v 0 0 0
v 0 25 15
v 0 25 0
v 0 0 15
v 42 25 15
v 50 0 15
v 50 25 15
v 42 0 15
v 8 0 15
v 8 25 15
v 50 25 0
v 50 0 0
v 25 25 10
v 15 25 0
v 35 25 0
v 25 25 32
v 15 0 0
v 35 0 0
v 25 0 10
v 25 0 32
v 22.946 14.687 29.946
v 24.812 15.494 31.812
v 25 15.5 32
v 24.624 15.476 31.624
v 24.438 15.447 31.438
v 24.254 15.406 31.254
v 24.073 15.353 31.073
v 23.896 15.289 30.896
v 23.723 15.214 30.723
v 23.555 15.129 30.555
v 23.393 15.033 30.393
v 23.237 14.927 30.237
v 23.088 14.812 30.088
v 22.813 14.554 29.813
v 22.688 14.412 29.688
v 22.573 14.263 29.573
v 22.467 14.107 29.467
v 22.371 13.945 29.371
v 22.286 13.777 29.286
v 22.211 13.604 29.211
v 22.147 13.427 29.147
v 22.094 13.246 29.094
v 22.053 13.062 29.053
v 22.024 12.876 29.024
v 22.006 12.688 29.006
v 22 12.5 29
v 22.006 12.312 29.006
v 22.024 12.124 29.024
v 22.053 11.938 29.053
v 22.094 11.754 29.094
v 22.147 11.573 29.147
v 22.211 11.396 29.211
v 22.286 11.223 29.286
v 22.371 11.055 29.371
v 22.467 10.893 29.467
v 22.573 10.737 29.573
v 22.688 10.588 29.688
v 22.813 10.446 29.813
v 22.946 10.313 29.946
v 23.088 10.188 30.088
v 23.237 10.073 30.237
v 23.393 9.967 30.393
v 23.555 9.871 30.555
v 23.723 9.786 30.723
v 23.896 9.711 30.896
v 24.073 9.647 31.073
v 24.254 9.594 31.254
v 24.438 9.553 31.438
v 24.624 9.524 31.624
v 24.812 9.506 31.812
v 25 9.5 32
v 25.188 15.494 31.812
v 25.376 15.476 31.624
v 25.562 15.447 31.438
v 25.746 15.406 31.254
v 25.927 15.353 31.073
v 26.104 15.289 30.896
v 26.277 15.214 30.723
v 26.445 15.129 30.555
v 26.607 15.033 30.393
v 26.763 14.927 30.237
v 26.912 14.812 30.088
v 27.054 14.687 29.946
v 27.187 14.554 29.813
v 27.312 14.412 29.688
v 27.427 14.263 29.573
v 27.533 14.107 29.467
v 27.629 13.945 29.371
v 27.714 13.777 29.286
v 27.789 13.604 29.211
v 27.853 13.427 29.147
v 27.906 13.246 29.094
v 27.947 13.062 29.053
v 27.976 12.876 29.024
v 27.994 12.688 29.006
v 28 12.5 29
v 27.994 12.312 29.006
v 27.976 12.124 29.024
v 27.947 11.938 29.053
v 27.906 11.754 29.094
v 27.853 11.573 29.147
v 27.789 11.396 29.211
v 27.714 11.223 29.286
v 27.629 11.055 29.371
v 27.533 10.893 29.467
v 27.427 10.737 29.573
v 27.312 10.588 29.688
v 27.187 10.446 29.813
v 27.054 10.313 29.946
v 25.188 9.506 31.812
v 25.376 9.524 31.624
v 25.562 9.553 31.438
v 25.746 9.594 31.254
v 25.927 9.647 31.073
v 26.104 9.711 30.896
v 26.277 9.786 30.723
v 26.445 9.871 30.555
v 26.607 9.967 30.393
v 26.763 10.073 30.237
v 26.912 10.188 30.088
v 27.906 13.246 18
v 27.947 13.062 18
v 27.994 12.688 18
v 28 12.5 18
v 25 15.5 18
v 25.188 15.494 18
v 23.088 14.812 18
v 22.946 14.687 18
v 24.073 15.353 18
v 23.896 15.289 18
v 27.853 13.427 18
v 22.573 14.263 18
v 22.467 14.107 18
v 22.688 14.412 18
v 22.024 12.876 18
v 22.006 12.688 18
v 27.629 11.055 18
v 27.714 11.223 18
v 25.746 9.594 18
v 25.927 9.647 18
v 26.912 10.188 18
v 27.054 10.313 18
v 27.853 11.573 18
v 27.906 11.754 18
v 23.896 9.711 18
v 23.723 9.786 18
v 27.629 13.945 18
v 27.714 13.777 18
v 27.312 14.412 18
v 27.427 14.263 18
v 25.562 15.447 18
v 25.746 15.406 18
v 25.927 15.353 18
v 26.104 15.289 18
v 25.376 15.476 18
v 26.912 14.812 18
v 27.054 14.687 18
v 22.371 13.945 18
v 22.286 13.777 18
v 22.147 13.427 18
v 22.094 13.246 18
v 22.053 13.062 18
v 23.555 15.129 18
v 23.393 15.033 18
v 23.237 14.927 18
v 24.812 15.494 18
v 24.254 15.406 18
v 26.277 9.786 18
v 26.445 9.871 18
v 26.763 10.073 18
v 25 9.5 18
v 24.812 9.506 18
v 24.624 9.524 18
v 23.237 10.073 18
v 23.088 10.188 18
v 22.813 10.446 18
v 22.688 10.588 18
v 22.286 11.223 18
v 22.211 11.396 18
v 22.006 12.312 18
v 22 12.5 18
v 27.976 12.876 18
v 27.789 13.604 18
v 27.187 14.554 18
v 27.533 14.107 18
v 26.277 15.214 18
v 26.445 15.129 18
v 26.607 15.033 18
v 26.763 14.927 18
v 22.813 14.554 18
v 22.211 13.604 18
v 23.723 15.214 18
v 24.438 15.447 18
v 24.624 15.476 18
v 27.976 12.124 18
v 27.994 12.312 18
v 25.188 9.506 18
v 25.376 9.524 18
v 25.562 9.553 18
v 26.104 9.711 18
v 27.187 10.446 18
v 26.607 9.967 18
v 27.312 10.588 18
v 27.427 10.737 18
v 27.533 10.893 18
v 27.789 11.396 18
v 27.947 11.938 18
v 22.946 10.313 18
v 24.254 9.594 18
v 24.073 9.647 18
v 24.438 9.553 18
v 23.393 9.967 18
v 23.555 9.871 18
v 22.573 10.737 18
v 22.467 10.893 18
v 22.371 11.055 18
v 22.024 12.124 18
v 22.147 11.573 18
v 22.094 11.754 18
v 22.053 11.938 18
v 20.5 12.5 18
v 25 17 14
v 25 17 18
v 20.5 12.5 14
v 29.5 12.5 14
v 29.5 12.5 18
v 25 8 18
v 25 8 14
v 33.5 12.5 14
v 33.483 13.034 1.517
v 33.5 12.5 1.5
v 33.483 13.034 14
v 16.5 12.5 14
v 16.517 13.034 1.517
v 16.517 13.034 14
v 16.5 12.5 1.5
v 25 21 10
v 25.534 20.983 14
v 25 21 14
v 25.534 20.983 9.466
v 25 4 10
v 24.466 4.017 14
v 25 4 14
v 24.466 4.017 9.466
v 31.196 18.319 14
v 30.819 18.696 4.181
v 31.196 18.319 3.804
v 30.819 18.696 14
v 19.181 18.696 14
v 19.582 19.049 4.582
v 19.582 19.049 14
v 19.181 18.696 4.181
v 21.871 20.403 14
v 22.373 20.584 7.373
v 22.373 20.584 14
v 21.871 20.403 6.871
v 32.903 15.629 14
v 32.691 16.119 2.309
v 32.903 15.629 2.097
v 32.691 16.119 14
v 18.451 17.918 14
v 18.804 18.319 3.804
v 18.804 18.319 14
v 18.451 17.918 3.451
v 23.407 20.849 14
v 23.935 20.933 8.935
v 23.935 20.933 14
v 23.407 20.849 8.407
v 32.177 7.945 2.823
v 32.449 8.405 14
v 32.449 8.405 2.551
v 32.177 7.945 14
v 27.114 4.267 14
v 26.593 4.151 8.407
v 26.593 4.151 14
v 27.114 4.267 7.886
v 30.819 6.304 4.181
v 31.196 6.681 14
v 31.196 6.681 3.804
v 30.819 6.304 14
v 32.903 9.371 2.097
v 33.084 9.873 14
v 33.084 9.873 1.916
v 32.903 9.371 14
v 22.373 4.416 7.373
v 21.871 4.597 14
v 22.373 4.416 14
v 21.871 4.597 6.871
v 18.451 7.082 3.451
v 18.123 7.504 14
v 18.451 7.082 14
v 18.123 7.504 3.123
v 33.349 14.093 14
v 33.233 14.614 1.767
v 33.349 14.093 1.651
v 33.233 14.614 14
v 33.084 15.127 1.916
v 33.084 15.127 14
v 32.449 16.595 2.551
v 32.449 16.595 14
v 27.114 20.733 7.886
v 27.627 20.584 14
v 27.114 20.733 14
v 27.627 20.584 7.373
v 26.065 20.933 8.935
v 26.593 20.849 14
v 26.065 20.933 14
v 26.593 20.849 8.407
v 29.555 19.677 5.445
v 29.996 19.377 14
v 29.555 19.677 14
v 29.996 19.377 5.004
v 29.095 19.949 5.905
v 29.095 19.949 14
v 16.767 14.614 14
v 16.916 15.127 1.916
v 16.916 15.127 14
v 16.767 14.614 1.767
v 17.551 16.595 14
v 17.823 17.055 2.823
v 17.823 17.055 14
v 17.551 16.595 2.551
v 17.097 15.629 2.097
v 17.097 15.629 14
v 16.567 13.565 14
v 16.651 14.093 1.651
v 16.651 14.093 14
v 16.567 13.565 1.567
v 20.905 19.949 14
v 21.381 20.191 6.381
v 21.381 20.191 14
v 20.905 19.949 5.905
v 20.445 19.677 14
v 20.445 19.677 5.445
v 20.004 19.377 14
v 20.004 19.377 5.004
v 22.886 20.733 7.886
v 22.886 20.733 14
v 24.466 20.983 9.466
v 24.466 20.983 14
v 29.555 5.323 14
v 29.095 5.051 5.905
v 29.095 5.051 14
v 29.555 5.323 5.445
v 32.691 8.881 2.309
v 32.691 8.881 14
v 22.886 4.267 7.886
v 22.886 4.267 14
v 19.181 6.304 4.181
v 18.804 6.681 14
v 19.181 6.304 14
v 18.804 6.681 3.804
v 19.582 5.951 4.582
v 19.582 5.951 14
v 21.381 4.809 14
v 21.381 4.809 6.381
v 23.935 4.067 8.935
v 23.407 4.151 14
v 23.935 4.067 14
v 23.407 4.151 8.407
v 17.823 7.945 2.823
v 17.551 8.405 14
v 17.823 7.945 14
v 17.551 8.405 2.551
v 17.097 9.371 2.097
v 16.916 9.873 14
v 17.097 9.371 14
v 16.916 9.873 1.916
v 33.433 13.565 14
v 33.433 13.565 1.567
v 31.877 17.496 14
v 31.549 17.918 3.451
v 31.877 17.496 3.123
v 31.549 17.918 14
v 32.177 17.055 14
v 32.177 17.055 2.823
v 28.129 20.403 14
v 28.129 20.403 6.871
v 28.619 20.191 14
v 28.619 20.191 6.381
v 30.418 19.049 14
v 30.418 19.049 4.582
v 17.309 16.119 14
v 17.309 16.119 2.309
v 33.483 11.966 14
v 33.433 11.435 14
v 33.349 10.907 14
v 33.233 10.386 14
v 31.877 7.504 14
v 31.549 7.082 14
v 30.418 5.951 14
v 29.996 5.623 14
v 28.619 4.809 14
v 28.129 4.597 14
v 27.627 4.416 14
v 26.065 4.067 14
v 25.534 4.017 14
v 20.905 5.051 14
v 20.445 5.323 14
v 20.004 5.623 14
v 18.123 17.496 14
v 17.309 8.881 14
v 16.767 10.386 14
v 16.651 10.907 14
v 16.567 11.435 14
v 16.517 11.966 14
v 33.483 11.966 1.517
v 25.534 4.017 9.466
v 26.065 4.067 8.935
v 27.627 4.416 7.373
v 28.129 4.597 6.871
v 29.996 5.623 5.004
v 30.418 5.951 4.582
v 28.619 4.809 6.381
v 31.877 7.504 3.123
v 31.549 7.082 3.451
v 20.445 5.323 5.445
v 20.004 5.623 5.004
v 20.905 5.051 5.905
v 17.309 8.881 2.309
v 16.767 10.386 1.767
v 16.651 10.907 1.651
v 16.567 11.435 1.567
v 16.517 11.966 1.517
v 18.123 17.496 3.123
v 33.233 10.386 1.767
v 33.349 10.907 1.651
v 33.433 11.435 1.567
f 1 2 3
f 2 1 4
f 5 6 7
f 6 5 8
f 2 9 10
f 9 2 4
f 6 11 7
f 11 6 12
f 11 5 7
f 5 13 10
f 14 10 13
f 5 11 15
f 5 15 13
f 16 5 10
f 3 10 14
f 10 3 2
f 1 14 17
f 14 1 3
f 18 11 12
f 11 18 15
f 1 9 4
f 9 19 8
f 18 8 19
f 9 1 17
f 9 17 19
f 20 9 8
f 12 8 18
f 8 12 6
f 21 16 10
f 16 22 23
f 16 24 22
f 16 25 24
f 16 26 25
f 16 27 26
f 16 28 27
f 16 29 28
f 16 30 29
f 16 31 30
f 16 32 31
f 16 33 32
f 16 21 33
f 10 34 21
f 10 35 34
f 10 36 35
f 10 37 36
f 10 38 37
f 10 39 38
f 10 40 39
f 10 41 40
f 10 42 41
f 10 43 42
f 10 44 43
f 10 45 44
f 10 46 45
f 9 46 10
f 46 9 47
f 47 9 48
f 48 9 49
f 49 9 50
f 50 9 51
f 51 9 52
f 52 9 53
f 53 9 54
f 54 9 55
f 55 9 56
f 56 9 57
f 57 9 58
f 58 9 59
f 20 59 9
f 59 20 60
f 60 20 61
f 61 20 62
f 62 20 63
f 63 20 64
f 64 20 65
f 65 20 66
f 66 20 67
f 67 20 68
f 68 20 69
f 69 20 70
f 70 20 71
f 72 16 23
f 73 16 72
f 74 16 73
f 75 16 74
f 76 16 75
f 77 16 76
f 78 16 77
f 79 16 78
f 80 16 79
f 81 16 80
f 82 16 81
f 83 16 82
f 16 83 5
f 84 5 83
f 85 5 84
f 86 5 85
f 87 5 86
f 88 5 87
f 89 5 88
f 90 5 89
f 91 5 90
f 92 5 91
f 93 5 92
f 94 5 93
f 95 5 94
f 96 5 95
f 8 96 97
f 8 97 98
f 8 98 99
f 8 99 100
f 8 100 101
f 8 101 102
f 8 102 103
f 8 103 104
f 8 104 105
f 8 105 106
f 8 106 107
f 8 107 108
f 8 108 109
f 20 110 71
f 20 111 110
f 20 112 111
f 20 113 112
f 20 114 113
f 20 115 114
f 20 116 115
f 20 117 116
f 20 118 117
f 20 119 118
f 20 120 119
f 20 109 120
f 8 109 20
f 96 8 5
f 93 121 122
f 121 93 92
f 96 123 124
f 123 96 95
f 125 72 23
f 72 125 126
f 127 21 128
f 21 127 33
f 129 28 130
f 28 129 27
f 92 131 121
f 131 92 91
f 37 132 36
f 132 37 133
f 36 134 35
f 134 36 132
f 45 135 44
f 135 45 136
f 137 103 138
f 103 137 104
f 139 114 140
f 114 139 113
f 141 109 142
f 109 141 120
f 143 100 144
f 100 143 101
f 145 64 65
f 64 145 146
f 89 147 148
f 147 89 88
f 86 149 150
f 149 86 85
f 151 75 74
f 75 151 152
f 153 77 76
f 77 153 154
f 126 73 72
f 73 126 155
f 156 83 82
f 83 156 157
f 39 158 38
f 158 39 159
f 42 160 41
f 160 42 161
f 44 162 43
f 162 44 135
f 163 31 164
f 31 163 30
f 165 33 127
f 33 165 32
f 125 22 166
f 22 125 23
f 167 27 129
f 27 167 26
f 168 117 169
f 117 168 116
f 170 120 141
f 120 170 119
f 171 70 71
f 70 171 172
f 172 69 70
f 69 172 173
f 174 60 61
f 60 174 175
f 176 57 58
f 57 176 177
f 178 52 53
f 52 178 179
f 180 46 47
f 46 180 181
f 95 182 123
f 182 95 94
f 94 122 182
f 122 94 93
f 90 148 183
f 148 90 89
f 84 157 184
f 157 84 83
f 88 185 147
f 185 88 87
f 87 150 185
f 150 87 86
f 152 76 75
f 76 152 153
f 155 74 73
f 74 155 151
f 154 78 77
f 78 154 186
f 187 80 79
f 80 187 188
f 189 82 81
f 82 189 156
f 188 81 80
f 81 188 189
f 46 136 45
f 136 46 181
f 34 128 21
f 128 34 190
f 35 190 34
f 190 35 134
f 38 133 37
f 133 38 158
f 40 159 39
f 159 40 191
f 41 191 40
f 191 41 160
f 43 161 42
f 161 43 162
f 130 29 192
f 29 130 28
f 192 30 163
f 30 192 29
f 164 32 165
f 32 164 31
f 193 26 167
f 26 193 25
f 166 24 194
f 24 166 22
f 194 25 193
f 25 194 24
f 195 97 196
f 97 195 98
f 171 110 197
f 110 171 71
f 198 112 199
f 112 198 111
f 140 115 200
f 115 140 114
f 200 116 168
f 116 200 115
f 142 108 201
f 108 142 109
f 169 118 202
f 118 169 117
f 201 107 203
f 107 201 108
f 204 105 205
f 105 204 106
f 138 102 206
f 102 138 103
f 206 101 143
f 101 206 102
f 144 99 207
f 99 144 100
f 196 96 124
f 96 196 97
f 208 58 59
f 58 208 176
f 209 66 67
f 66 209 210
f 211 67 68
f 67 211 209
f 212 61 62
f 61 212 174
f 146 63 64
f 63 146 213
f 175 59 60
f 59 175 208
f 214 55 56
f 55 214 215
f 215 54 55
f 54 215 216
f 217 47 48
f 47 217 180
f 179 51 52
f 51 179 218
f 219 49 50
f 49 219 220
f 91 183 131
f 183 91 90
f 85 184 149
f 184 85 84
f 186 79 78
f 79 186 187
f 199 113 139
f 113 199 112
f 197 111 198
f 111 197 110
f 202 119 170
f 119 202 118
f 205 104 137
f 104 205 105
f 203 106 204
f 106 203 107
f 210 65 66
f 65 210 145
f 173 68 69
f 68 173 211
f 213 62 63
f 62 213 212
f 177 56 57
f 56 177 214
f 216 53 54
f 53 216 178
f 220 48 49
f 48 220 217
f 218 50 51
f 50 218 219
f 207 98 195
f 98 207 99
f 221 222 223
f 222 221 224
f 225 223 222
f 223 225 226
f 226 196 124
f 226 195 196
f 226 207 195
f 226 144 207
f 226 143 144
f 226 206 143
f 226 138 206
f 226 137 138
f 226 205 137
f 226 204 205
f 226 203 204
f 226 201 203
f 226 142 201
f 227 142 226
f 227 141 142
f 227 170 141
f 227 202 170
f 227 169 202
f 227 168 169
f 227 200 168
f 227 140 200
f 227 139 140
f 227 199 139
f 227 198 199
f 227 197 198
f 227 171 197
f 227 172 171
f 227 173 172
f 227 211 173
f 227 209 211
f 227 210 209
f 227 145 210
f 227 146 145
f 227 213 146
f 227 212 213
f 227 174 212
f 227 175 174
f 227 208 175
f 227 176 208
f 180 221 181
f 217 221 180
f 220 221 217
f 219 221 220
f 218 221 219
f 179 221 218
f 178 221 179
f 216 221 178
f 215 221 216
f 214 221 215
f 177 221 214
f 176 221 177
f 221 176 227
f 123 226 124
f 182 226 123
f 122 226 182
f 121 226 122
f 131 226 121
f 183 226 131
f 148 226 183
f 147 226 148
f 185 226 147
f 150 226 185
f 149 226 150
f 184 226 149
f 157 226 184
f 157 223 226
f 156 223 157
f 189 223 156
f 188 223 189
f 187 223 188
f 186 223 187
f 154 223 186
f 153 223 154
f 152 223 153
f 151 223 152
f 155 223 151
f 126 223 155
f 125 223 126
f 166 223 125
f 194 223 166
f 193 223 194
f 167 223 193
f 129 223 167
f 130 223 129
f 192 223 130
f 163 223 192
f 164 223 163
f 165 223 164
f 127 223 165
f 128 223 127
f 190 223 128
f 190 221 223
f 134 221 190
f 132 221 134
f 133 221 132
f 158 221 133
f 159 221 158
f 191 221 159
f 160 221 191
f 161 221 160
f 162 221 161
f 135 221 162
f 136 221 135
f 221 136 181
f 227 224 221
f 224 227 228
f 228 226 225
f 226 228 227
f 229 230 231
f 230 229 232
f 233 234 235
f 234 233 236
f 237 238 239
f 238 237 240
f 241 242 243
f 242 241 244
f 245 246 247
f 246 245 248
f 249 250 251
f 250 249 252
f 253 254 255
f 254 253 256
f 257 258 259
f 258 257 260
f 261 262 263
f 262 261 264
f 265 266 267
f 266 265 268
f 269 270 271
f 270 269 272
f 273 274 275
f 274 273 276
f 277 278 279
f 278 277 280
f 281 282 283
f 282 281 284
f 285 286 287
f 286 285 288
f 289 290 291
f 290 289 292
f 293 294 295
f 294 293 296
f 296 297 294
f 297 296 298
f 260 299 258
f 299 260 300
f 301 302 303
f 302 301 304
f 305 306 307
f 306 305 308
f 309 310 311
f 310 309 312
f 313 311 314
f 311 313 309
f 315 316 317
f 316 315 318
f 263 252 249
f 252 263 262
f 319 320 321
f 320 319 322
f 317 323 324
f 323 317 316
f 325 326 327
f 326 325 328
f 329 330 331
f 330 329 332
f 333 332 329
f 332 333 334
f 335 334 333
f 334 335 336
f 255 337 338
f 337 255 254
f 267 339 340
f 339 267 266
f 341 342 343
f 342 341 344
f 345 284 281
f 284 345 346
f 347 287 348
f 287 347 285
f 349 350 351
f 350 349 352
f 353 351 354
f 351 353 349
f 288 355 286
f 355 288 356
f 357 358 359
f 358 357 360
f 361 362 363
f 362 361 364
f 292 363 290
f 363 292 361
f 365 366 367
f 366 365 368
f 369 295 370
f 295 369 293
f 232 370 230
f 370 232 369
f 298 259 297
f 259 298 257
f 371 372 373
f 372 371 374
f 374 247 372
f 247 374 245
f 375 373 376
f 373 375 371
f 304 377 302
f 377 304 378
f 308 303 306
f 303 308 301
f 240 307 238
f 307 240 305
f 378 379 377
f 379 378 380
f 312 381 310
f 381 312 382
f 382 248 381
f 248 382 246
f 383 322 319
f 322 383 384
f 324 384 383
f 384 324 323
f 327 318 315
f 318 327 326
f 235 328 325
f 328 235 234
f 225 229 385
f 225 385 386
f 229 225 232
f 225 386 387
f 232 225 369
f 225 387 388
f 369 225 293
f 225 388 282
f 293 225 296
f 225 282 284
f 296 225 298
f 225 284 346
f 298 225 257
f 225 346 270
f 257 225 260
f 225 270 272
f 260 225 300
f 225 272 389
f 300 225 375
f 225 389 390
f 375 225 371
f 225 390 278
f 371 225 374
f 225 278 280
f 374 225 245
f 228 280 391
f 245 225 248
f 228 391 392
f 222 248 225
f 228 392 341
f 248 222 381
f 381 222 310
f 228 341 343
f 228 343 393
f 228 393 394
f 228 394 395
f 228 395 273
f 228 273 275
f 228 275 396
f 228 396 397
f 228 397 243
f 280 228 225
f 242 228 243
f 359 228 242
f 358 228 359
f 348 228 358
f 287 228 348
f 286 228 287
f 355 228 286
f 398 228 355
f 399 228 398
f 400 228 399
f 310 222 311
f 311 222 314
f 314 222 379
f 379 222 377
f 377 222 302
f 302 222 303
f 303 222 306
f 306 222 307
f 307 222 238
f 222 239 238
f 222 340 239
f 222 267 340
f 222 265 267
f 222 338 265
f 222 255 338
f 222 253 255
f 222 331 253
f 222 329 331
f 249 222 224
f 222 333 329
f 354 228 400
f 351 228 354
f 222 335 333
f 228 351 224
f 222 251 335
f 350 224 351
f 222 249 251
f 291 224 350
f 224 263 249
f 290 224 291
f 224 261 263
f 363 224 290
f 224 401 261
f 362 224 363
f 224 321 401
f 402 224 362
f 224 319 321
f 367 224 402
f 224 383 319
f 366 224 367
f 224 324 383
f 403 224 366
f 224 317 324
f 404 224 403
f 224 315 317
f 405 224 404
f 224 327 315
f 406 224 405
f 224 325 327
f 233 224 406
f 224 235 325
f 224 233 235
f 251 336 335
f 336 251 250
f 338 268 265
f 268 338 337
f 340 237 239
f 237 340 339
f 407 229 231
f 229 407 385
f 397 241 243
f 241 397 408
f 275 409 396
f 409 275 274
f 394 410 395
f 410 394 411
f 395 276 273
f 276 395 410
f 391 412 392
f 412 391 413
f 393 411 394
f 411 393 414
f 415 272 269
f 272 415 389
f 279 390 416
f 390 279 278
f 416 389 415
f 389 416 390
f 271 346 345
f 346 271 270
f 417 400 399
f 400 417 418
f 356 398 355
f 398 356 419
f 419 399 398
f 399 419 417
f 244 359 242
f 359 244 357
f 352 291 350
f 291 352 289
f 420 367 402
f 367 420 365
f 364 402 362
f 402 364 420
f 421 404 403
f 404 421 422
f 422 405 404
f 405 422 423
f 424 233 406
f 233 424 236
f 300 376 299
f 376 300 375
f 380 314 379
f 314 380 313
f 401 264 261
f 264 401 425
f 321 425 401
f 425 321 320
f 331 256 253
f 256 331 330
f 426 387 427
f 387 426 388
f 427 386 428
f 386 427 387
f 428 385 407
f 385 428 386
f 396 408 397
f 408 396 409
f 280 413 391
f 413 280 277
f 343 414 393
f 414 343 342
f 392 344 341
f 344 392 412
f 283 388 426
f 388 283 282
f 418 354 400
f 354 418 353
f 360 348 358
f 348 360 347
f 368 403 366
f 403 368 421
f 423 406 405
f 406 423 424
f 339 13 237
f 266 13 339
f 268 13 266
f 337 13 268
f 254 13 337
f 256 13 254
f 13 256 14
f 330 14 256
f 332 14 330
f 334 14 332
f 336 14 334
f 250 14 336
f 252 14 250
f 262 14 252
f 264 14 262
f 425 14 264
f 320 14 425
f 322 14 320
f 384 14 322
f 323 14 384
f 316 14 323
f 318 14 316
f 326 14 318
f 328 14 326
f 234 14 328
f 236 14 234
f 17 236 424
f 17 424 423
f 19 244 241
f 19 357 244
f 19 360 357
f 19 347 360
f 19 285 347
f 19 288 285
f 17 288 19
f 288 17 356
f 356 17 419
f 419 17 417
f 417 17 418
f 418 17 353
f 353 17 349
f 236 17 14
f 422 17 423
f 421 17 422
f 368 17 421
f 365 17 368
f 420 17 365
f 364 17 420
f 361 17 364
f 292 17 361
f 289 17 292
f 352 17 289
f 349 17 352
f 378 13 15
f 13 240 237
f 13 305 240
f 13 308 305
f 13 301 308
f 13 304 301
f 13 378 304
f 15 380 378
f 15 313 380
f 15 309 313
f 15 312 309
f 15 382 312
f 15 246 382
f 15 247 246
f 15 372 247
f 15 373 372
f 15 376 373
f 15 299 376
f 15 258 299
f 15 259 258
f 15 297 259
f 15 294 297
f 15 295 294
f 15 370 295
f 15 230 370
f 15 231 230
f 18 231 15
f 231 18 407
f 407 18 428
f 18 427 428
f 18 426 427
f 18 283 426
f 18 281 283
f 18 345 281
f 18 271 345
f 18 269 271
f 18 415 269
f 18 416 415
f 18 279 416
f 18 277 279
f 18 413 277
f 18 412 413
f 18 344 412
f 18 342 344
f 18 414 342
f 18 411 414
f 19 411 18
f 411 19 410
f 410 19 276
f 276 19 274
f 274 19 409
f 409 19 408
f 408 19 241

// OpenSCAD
/*

Banner mounting bracket for poles
@idnorton
2022-06-22

Licenced as Creative Commons Attribution Non Commercial 3.0
See https://creativecommons.org/licenses/by-nc/3.0/

Specifically you may not sell the design or products using the design.
You're welcome to use the design to build things for your own commercial event

*/

// Scaffold pole is 48.3mm or 2 inches

// Body dimensions
body_x = 50;
body_y = 25;
body_z = 15;

bolt_diameter = 6;
bolt_square = 9;
bolt_head = 17;

band_thickness = 6;

module body_bottom () {

  difference() {
    union () {
      // Big square body
      cube([body_x, body_y, body_z]);

      // Top triangle
      translate([body_x/2, 0, 32]) {
        rotate([270,45,0]) {
          cube([body_x/2, body_x/2, body_y]);
        }
      }


    }

    // V in the back
    translate([body_x/2, -1, 10]) {
      rotate([270, 45, 0]) {
        cube([body_x, body_x, body_y+2]);
      }
    }

    // Hole for bolt and recess for head
    translate([body_x/2, body_y/2, 0]) {
      cylinder(body_z + 100,d=bolt_diameter, $fn=100);
      cylinder(18, bolt_square/2, bolt_square/2, $fn=4);
      cylinder(14, bolt_head/2, bolt_head/2, $fn=100);
    }
  }

//  // Below
//  translate([0, 0, 0]) {
//    band();
//  }
//
//  // Above
//  translate([0, body_y + 20, 0]) {
//    band();
//  }
//
//  translate([0, body_y +  35, 0]) {
//    band();
//  }
}

module bump (
    base = 15,
    height = 20,
    thickness = 20,
  ) {
  difference () {
    union () {
      // Base body
      cube([body_x, thickness, base]);

      // Round top
      translate([body_x/2,0,height]) {
        rotate([270,0,0]) {
          cylinder(thickness,d=body_x, $fn=100);
        }
      }
    }

    // V in the back
    translate([body_x/2, -1, 10]) {
      rotate([270, 45, 0]) {
        cube([body_x, body_x, body_y+2]);
      }
    }

    // Flatten the bottom
    translate([0,0,-20]) {
      cube([body_x, body_y, 20]);
    }
  }
}

module band () {
  translate([0, -5, 0]) {
    bump(base = 20, thickness = 5);
  }
  translate([0, -15, 0]) {
    bump(height = 15, thickness = 10);
  }
  translate([0, -20, 0]) {
    bump(base = 20, thickness = 5);
  }
}

body_bottom();
